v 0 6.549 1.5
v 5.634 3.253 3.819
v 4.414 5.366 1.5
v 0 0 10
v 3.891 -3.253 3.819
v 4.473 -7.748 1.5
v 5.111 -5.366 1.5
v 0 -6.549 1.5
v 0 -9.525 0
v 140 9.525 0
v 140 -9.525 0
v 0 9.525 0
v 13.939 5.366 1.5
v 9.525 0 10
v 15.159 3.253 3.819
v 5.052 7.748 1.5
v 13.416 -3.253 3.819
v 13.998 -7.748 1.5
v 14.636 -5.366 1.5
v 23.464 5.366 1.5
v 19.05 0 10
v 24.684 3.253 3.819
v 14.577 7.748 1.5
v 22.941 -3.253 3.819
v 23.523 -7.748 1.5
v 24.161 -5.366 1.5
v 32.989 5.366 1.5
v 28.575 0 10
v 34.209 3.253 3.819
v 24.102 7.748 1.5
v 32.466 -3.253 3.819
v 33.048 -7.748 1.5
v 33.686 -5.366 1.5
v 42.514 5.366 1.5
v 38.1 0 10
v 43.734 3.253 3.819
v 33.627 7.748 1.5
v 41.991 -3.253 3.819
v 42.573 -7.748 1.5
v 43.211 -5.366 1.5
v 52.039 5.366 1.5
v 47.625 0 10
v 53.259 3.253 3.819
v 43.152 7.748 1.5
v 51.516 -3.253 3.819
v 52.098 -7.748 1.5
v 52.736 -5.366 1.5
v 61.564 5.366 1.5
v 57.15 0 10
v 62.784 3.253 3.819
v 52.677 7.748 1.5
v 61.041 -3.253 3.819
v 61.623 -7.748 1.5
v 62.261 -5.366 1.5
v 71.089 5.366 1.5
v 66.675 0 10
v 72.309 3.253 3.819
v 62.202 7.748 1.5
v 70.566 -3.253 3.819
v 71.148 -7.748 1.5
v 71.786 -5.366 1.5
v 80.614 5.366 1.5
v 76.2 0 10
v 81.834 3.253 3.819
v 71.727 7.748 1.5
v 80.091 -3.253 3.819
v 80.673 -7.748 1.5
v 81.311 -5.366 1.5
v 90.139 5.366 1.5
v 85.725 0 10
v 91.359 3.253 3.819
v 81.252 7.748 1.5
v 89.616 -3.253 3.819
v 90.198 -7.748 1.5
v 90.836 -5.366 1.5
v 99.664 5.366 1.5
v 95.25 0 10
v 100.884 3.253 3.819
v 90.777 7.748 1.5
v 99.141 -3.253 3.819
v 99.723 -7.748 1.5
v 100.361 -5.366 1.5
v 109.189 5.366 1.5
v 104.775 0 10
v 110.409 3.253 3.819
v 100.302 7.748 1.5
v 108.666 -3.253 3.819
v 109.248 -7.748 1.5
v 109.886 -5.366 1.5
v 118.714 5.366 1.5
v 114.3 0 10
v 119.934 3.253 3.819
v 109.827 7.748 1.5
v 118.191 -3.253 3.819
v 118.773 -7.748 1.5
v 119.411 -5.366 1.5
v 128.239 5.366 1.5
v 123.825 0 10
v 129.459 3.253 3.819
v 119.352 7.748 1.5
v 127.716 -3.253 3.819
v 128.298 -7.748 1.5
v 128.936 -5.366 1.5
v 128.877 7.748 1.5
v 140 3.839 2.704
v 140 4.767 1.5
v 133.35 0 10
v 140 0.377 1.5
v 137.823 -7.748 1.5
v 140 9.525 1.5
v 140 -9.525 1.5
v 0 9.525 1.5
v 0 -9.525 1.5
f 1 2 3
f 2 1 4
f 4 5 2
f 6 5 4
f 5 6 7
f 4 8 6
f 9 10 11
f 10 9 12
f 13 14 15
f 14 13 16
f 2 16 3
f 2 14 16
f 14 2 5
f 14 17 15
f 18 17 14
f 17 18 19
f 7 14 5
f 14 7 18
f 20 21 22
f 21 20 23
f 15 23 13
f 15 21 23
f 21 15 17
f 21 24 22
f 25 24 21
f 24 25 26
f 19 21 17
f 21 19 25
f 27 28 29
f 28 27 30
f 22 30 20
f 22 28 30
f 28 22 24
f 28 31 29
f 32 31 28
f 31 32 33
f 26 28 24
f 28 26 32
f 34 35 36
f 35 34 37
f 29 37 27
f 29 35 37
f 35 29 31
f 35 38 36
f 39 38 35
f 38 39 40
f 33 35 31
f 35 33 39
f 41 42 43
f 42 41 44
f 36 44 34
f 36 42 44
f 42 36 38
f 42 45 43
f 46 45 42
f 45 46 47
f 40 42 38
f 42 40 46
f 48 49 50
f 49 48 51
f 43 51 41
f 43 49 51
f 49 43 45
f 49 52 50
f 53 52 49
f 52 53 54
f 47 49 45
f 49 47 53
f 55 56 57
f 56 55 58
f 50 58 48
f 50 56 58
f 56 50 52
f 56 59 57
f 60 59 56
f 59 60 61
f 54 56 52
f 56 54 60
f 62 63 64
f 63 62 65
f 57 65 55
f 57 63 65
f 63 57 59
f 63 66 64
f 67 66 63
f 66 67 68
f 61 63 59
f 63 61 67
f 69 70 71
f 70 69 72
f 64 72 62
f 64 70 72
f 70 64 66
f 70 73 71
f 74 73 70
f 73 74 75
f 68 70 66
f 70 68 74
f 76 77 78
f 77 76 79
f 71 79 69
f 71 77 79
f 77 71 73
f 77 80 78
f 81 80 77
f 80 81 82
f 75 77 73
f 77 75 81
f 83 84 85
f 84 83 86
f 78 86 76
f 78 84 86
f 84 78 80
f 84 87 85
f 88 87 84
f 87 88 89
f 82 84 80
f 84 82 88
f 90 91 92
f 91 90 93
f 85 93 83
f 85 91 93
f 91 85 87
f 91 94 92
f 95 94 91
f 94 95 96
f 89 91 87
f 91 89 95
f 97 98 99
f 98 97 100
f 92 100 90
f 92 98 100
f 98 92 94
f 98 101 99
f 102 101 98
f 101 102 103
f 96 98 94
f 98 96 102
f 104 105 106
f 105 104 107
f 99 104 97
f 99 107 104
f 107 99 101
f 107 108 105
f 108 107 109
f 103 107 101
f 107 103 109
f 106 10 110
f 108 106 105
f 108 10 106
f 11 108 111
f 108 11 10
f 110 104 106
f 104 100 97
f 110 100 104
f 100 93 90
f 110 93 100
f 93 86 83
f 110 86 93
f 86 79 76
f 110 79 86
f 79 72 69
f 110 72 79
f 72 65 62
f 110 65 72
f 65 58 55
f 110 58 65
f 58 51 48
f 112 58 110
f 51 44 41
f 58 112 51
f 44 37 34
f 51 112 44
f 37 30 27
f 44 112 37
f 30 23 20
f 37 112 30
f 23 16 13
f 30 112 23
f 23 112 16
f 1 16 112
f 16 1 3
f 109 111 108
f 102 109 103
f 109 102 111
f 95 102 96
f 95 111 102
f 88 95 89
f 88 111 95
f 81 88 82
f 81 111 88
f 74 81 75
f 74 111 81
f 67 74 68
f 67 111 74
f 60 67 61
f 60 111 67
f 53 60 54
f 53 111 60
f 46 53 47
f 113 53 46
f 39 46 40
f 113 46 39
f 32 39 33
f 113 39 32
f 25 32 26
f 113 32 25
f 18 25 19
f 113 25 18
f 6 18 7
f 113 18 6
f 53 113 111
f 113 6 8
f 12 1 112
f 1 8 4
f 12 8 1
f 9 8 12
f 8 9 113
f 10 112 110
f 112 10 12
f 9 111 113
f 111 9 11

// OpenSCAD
$r = 19.05 / 2;
$r2 = 11 / 2;
$d = 1.5;
$fn = 4;
$links = 14;

difference() {
    union() {
for (i = [0:$links]) {
    
     translate([i * $r, 0, 5]) {
        rotate([0, 0, 30]) {
            cylinder(10, $r+1, 0, true);
        }
     }
}
translate([0, -$r, 0]) {
     cube([140, $r*2 , $d], false);
}
}
translate([-10, 0, 0]) {
    cube([20, 20, 20], true);
}
translate([($links) * $r + 16.65, 0, 0]) {
    cube([20, 20, 20], true);
}
}
